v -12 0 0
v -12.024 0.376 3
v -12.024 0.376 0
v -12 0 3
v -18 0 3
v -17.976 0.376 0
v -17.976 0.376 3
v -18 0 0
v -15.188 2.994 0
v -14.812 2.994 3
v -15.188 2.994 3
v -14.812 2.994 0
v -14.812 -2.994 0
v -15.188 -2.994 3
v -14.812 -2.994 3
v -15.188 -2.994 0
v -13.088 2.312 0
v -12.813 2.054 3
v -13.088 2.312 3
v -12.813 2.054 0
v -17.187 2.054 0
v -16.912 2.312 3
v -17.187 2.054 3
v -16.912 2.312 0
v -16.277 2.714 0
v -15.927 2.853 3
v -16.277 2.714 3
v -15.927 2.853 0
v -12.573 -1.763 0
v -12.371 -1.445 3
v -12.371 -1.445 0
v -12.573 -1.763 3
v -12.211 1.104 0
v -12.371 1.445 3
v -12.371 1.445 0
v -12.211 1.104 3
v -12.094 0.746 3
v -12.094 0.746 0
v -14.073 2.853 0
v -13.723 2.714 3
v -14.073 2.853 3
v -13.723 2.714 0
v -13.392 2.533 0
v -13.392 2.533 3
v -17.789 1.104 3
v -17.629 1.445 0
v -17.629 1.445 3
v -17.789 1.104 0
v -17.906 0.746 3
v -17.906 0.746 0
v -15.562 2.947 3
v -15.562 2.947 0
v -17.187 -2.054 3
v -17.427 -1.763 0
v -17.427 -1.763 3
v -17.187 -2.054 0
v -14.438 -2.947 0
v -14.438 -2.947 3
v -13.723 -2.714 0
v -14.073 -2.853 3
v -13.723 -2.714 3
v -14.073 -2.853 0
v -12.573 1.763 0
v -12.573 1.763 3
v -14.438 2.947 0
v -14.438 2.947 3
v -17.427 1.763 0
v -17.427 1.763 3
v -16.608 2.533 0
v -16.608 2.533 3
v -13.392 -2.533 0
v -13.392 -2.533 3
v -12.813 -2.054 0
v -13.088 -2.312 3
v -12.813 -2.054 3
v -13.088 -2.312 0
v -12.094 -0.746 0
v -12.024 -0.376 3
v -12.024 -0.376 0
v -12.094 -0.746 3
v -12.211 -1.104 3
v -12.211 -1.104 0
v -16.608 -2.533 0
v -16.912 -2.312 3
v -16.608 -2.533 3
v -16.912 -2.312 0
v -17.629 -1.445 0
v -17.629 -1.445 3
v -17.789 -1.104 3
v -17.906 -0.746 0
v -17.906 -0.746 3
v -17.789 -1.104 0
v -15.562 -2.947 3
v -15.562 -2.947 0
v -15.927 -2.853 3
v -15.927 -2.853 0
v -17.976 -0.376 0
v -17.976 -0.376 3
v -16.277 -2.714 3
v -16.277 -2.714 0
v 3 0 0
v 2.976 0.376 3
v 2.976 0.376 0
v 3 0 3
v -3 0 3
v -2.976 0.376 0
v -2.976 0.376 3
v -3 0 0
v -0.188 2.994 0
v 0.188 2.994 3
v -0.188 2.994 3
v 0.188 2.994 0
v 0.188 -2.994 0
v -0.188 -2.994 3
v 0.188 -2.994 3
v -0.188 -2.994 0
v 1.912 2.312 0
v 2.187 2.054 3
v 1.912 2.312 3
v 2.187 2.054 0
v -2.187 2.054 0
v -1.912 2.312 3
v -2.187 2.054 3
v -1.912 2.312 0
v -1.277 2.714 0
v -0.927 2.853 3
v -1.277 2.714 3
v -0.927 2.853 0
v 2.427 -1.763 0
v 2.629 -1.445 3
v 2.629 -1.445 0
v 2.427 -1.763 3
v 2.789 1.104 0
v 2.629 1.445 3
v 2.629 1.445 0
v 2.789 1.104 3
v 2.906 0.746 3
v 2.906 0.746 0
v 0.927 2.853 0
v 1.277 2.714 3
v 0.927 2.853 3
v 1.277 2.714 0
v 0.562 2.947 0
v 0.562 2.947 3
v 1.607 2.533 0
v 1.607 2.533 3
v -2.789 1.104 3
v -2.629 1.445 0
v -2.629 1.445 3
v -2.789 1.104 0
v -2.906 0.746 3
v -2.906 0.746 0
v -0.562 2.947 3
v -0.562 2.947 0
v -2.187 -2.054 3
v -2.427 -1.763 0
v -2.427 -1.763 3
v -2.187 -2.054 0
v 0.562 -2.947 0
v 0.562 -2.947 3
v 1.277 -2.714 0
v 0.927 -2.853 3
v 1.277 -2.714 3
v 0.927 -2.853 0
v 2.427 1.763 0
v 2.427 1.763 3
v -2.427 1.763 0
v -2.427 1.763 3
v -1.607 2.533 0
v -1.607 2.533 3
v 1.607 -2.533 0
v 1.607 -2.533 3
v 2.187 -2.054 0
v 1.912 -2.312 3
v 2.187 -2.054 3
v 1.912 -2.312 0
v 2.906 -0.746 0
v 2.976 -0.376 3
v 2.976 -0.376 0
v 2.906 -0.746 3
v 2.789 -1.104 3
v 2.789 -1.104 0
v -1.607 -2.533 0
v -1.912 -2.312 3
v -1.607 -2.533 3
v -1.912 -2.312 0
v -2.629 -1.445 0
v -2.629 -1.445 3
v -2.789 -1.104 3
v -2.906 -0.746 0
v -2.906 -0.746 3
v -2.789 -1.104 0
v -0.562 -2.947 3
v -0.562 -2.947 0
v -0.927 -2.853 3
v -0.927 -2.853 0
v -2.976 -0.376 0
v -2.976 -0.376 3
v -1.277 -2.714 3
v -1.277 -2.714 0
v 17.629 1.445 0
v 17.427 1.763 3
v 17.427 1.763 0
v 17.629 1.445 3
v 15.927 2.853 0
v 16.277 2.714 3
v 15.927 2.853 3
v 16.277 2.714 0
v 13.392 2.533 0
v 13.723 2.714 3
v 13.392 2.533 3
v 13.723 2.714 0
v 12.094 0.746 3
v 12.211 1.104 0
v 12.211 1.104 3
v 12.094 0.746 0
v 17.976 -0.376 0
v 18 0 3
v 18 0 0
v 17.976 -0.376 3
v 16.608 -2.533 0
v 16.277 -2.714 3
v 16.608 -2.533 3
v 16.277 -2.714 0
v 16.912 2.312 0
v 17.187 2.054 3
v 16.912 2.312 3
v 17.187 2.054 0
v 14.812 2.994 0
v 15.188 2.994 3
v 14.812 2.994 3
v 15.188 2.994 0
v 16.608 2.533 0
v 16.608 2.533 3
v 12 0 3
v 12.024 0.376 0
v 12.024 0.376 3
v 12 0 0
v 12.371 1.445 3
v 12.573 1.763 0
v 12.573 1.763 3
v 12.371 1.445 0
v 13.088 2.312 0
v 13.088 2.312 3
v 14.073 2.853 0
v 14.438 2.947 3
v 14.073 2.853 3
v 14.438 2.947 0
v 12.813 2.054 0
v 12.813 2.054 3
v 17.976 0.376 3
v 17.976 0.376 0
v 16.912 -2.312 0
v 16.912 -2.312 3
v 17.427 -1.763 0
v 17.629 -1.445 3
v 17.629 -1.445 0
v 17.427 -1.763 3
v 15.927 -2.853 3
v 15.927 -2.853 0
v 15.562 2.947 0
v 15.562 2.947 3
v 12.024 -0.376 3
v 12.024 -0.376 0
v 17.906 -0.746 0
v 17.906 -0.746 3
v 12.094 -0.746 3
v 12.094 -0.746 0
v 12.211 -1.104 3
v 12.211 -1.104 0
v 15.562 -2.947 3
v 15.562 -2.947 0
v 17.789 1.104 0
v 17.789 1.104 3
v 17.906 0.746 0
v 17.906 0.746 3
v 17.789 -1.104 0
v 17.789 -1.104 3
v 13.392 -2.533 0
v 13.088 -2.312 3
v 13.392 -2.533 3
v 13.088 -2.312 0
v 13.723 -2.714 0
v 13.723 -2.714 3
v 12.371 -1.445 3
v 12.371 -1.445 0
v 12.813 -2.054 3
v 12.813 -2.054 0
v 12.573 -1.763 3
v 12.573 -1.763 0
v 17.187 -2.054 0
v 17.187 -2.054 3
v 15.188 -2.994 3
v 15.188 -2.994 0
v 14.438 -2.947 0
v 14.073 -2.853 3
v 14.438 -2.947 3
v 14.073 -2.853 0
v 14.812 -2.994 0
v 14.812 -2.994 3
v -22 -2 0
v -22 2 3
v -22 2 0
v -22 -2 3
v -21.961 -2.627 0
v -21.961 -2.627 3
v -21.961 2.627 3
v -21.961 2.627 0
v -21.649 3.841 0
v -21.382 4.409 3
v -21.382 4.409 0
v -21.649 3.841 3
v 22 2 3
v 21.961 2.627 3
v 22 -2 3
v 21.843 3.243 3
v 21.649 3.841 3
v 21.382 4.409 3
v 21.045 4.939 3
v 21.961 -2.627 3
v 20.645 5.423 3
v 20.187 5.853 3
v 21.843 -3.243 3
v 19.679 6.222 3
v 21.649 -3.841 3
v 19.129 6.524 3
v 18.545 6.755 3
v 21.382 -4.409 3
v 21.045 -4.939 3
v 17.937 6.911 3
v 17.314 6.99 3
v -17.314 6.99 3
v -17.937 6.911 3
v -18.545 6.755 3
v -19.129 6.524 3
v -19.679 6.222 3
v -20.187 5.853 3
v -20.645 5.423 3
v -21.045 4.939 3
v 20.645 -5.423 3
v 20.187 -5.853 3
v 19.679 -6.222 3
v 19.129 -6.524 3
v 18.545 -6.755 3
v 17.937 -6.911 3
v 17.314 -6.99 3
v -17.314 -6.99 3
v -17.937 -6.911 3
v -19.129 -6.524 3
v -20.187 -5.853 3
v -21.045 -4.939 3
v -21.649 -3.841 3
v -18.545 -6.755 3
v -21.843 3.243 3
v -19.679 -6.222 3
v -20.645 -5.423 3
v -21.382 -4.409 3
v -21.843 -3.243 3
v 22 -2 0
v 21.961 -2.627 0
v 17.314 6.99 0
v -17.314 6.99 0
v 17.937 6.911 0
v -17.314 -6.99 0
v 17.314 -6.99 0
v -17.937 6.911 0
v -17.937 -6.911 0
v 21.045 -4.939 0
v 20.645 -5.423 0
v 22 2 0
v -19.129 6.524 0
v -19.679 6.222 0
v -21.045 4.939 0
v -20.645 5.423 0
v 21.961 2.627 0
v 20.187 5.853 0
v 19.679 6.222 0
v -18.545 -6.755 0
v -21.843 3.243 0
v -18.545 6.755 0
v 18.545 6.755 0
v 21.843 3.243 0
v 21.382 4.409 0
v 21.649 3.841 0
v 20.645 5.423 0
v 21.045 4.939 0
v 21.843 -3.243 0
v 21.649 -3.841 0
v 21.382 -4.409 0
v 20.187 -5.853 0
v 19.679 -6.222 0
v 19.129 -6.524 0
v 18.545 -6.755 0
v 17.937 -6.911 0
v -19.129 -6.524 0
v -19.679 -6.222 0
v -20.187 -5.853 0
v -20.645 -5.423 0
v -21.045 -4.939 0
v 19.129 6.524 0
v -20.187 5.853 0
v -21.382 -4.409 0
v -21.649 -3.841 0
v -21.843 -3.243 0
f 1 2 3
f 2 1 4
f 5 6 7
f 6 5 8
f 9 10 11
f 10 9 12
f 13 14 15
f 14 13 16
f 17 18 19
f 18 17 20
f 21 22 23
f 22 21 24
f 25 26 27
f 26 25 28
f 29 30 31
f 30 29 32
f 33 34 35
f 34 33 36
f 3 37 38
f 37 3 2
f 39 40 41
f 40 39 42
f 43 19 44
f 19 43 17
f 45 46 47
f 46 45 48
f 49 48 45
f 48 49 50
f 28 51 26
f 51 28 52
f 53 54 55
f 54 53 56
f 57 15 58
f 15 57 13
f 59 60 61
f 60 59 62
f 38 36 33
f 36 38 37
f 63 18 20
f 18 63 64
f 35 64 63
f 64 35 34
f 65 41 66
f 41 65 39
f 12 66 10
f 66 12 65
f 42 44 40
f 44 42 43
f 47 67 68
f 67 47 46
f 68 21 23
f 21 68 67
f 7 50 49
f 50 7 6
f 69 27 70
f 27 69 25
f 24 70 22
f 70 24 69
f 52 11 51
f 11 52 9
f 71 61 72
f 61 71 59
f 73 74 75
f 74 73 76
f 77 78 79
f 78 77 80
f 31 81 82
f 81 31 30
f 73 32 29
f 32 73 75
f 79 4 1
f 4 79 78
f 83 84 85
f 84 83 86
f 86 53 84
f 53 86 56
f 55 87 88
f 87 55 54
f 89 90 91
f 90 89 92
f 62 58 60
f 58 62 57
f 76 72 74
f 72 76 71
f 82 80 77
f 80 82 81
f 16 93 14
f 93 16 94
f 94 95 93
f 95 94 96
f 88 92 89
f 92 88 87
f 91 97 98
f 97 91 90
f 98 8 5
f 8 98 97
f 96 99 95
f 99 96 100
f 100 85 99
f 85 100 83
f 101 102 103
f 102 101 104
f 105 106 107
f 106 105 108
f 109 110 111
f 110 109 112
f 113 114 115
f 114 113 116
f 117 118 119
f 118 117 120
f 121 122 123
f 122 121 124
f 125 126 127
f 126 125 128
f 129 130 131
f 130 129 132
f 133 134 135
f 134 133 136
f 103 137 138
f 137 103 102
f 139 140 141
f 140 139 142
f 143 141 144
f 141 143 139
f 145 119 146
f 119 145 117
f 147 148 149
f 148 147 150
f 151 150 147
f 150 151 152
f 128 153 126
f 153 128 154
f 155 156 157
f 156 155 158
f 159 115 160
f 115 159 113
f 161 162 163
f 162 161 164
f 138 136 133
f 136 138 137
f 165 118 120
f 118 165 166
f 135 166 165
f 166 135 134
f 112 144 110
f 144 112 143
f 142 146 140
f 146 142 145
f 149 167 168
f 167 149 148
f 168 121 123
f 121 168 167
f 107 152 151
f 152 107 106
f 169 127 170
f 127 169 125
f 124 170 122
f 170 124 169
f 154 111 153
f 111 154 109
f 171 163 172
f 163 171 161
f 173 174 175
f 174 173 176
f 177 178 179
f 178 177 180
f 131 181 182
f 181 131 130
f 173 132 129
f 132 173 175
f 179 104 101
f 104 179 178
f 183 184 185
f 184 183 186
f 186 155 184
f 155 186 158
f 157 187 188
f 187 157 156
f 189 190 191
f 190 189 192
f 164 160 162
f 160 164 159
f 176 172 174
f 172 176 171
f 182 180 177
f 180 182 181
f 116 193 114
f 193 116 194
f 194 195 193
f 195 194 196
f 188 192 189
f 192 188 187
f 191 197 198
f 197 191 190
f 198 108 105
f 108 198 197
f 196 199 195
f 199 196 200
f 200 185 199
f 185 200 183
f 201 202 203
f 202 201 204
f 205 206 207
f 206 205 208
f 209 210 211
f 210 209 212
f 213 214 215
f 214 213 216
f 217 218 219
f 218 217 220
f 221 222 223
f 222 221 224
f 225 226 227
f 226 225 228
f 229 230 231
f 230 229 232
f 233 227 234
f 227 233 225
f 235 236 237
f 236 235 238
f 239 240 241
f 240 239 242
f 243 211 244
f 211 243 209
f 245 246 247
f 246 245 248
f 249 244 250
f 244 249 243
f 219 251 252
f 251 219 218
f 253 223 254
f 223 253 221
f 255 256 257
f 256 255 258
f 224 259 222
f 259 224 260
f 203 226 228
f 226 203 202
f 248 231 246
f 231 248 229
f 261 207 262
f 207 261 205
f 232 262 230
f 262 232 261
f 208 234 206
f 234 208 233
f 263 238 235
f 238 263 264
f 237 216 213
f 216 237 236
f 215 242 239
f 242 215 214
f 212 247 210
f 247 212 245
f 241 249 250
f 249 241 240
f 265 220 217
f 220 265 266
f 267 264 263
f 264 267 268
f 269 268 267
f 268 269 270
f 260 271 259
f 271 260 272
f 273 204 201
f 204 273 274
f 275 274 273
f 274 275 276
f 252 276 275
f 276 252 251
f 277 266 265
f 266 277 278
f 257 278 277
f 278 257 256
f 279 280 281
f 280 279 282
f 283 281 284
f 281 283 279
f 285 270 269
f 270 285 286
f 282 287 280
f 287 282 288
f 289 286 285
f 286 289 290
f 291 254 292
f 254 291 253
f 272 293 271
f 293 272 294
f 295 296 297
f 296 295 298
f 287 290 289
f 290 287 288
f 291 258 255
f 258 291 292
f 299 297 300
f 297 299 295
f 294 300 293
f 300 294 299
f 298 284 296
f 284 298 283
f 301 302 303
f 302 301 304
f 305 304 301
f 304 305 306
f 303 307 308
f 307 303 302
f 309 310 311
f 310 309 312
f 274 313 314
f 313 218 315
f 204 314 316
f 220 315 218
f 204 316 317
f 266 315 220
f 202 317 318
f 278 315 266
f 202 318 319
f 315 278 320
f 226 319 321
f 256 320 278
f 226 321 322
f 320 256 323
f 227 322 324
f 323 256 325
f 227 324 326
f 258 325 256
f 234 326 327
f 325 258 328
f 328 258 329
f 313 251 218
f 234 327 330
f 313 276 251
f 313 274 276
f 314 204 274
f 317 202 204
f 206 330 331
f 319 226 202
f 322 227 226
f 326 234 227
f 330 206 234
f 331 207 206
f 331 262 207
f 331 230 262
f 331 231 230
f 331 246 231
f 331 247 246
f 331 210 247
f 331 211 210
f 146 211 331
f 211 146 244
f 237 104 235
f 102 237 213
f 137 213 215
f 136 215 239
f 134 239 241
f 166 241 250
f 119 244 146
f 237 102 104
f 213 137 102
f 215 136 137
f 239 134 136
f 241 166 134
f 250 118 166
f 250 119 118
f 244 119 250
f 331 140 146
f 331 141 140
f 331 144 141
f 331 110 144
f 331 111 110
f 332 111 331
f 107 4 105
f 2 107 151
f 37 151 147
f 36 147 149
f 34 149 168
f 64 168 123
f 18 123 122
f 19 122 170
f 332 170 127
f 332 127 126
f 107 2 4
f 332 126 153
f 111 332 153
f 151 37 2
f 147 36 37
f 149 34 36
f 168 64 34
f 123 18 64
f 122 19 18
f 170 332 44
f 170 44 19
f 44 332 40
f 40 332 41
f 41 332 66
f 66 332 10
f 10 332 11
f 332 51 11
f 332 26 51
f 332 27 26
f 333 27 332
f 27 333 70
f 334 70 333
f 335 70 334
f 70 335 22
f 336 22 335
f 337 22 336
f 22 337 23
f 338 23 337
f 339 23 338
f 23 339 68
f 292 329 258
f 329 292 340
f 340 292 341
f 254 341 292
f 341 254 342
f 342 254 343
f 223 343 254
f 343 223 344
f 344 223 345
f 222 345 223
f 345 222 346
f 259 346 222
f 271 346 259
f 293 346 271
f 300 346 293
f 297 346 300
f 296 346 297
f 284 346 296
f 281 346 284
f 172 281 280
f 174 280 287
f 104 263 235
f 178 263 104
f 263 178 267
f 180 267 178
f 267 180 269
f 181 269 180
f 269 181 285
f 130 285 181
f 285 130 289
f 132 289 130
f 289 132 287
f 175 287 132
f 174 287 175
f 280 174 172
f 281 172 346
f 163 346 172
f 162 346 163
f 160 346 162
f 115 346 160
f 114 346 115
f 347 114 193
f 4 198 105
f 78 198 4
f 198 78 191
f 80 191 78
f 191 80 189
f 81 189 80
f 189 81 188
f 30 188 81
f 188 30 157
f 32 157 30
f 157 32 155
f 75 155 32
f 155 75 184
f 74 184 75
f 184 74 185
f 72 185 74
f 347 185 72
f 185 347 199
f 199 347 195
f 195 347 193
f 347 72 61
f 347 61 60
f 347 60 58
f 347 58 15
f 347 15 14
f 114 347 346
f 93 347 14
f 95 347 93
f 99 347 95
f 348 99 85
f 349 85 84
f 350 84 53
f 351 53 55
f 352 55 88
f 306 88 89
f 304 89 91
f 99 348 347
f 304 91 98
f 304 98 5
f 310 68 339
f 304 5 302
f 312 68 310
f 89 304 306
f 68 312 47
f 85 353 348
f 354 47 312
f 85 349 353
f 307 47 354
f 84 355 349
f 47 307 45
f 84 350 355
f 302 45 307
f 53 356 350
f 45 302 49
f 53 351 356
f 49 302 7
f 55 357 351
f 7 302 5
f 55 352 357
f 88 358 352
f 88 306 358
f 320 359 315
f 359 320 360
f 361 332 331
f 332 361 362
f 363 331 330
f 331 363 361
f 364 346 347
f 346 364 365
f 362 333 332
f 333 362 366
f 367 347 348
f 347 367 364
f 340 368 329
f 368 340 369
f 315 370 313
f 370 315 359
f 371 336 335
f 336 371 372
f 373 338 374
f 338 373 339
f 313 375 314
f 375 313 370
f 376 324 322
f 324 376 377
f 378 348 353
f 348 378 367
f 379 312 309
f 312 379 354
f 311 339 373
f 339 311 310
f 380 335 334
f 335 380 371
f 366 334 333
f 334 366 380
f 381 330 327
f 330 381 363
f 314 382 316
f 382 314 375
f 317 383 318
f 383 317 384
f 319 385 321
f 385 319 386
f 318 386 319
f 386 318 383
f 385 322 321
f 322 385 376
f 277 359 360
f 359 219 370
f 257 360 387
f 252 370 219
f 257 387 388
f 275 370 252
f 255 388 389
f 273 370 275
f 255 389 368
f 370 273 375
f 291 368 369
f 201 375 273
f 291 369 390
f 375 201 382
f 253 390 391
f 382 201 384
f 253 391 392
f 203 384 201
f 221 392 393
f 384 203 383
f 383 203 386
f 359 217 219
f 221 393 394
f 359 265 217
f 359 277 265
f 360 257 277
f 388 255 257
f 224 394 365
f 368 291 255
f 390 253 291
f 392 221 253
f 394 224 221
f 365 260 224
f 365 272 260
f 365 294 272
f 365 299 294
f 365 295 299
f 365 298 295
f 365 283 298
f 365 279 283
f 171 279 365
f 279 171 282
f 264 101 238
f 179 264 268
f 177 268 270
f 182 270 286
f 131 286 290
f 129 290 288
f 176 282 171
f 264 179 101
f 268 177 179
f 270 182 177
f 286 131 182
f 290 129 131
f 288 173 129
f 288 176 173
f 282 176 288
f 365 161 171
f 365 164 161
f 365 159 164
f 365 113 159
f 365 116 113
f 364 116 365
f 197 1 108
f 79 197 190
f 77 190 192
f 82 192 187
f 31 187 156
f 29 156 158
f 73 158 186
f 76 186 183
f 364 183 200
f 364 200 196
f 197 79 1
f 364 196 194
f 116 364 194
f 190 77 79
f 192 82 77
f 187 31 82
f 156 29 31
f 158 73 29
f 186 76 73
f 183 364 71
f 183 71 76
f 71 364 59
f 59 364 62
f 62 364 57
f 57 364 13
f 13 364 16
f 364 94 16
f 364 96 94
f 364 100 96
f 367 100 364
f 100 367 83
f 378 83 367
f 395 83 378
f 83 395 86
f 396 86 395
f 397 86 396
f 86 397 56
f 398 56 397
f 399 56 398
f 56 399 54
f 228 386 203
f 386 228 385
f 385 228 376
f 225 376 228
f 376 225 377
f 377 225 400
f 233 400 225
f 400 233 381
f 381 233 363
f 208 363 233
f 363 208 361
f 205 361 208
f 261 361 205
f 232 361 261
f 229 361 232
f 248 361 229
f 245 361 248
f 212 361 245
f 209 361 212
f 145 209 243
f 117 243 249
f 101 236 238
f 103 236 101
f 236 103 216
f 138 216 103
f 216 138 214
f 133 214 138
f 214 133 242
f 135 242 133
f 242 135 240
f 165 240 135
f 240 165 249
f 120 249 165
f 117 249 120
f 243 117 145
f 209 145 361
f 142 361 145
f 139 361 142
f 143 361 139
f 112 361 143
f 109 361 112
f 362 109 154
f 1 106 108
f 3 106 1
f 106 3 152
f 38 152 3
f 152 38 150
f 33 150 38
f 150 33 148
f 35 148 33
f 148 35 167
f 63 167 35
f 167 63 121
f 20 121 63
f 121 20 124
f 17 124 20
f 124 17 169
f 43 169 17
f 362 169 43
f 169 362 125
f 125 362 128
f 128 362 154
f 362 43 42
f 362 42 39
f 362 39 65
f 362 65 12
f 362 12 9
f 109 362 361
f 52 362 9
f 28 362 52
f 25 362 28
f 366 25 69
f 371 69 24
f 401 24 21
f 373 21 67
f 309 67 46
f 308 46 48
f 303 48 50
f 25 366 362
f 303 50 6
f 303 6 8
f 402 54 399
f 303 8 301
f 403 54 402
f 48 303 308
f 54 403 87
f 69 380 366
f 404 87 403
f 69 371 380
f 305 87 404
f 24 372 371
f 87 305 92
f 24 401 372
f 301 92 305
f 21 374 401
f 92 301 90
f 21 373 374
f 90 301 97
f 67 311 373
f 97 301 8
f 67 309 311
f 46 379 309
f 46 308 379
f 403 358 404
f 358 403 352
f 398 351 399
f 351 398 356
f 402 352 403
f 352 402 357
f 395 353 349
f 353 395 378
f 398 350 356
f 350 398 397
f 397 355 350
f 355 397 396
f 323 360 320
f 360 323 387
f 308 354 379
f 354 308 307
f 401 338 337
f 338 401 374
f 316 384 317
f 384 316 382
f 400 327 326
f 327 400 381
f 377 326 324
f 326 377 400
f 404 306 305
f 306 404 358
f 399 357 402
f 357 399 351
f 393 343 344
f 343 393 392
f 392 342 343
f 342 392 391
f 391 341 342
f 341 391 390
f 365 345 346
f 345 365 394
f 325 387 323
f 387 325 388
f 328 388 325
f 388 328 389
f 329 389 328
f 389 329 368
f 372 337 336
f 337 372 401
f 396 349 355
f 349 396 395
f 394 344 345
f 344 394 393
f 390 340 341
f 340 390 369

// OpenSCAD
// Generated by SolidPython 1.1.3 on 2023-03-12 21:51:43
$fn = 50;


difference() {
	union() {
		translate(v = [0, 0, 0]) {
			rotate(a = [0, 0, 0]) {
				hull() {
					translate(v = [-17.0000000000, 2.0000000000, 0]) {
						rotate(a = [0, 0, 0]) {
							translate(v = [0, 0, 0]) {
								rotate(a = [0, 0, 0]) {
									cylinder(h = 3, r = 5);
								}
							}
						}
					}
					translate(v = [17.0000000000, 2.0000000000, 0]) {
						rotate(a = [0, 0, 0]) {
							translate(v = [0, 0, 0]) {
								rotate(a = [0, 0, 0]) {
									cylinder(h = 3, r = 5);
								}
							}
						}
					}
					translate(v = [-17.0000000000, -2.0000000000, 0]) {
						rotate(a = [0, 0, 0]) {
							translate(v = [0, 0, 0]) {
								rotate(a = [0, 0, 0]) {
									cylinder(h = 3, r = 5);
								}
							}
						}
					}
					translate(v = [17.0000000000, -2.0000000000, 0]) {
						rotate(a = [0, 0, 0]) {
							translate(v = [0, 0, 0]) {
								rotate(a = [0, 0, 0]) {
									cylinder(h = 3, r = 5);
								}
							}
						}
					}
				}
			}
		}
	}
	union() {
		translate(v = [-15.0000000000, 0.0000000000, 0]) {
			rotate(a = [0, 0, 0]) {
				translate(v = [0, 0, -50]) {
					rotate(a = [0, 0, 0]) {
						cylinder(h = 100, r = 3.0000000000);
					}
				}
			}
		}
		translate(v = [0.0000000000, 0.0000000000, 0]) {
			rotate(a = [0, 0, 0]) {
				translate(v = [0, 0, -50]) {
					rotate(a = [0, 0, 0]) {
						cylinder(h = 100, r = 3.0000000000);
					}
				}
			}
		}
		translate(v = [15.0000000000, 0.0000000000, 0]) {
			rotate(a = [0, 0, 0]) {
				translate(v = [0, 0, -50]) {
					rotate(a = [0, 0, 0]) {
						cylinder(h = 100, r = 3.0000000000);
					}
				}
			}
		}
	}
}
/***********************************************
*********      SolidPython code:      **********
************************************************
 
from solid import *
import os
import subprocess

import oomB

import opsc_library_gen

mode = "laser"
#mode = "3d_print"

defined_objects = {}

radius_dict = {}
countersunk_dict = {}


def set_mode(m):
    global mode
    mode = m
    radius_dict['M6'] = 6.5/2
    radius_dict['M3'] = 3.3/2
    if mode == "laser":
        radius_dict['M6'] = 6/2
        radius_dict['M3'] = 3/2

    countersunk_dict['M3'] = {}
    countersunk_dict['M3']['little_rad'] = radius_dict['M3']
    countersunk_dict['M3']['big_rad'] = (5.5+0.6)/2
    if mode == "laser":
        countersunk_dict['M3']['big_rad'] = (4.75+0.6)/2
        countersunk_dict['M3']['little_rad'] = (4.75+0.6)/2

    countersunk_dict['M3']['height'] = 1.7


def opsc_make_object(filename, objects, save_type="none",resolution=50, layers = 1, tilediff = 200, mode="laser", overwrite=True):
    if overwrite or not os.path.exists(filename):
        set_mode(mode)
        save_type = save_type.lower()
        os.makedirs(os.path.dirname(filename), exist_ok=True)
        final_object = opsc_get_object(objects, mode = mode)
        # Save the final object to the specified filename    
        scad_render_to_file(final_object, filename, file_header='$fn = %s;' % resolution, include_orig_code=True)
        if mode == "laser":
            filename_laser = filename.replace(".scad","-flat.scad")
            scad_render_to_file(getLaser(final_object, layers=layers, tilediff=tilediff), filename_laser, file_header='$fn = %s;' % resolution, include_orig_code=True)
            if save_type == "all":
                saveToAll(filename_laser)
            elif save_type == "dxf":
                saveToDxf(filename_laser)
        if save_type == "all":
            saveToAll(filename)
        elif save_type == "dxf":
            saveToDxf(filename)


def opsc_get_object(objects, mode = "laser"):
    # Create the solidpython objects only include the positive objects and if they don't have inclusion or their inclusion is either all or mode
    # Initialize an empty list to store the results
    positive_objects = []

    # Iterate over the "objects" list
    for obj in objects:
        # Check if the current object has a "type" key with a value of "positive"
        if obj['type'] == 'positive':
            # Check if the current object has an "inclusion" key and its value matches "mode",
            # or if the current object does not have an "inclusion" key at all
            if not 'inclusion' in obj or obj['inclusion'] == "all" or obj['inclusion'] == mode:
                # Call the "get_opsc_item" function with the current object as an argument
                opsc_item = get_opsc_item(obj)
                # Add the result to the "positive_objects" list
                positive_objects.append(opsc_item)
# Initialize an empty list to store the results
    negative_objects = []

    # Iterate over the "objects" list
    for obj in objects:
        # Check if the current object has a "type" key with a value of "negative"
        if obj['type'] == 'negative':
            # Check if the current object has an "inclusion" key and its value matches "mode",
            # or if the current object does not have an "inclusion" key at all
            if not 'inclusion' in obj or obj['inclusion'] == "all" or obj['inclusion'] == mode:
                # Call the "get_opsc_item" function with the current object as an argument
                opsc_item = get_opsc_item(obj)
                # Add the result to the "negative_objects" list
                negative_objects.append(opsc_item)
    
    #positive_objects = [get_opsc_item(obj) for obj in objects if obj['type'] == 'positive']
    #negative_objects = [get_opsc_item(obj) for obj in objects if obj['type'] == 'negative']
    # Union the positive objects
    positive_object = union()(*positive_objects)
    # Union the negative objects
    negative_object = union()(*negative_objects)
    # Create the final object by subtracting the negative objects from the positive objects
    return difference()(positive_object, negative_object)

def get_opsc_item(params):
    # A dictionary to map radius string values to numerical values
    #radius_dict = {'small': 5, 'medium': 10, 'large': 15}
    # An array of function names for basic shapes
    basic_shapes = ['cube', 'sphere', 'cylinder']
    
    # An array of function names for other shapes
    other_shapes = ['hole', 'slot', 'rounded_rectangle', 'countersunk']
    


    # Convert radius to r if present, and remove radius from the params dictionary
    if 'radius' in params:
        if isinstance(params['radius'], str):
            # Use the radius_dict to map the radius string value to a numerical value
            params['r'] = radius_dict[params['radius']]
        else:
            params['r'] = params['radius']
        del params['radius']
    

    # Check if the object type is a basic shape
    if params['shape'] in basic_shapes:
        # Remove shape and unexpected dictionary values
        allowed_keys = {'size', 'r', 'r1', 'r2', 'd', 'h', 'rw', 'rh', 'dw', 'dh'}
        shape_params = {k: v for k, v in params.items() if k in allowed_keys}

        # Call the corresponding function for the shape parameter, using ** notation to pass the shape_params dictionary as keyword arguments
        return get_opsc_transform(params,globals()[params['shape']](**shape_params))
    
    # If the object type is not a basic shape, check if it's a defined object or one of the other shapes
    elif params['shape'] in other_shapes:
        # Call the corresponding function for the shape parameter, passing the params dictionary as an argument
        p2 = copy.deepcopy(params)
        p2["pos"] = [0,0,0]
        return get_opsc_transform(params,globals()[params['shape']](p2))
    
    # If the object is not a basic shape or a defined object, try to import it from a .scad file
    else:
        obj = defined_objects[params['shape']]
        return get_opsc_transform(params,obj)

def get_opsc_transform(params, solid_obj):
    # Rotate the object based on the 'rot' field in the params dictionary, or the 'rotX', 'rotY', and 'rotZ' fields if 'rot' is not present
    rot = params.get('rot', [])
    if rot:
        rotX, rotY, rotZ = rot
    else:
        rotX = params.get('rotX', 0)
        rotY = params.get('rotY', 0)
        rotZ = params.get('rotZ', 0)
    solid_obj = rotate([rotX, rotY, rotZ])(solid_obj)

    # Translate the object based on the 'pos' field in the params dictionary, or the 'x', 'y', and 'z' fields if 'pos' is not present
    pos = params.get('pos', [])
    if pos:
        x, y, z = pos
    else:
        x = params.get('x', 0)
        y = params.get('y', 0)
        z = params.get('z', 0)
    solid_obj = translate([x, y, z])(solid_obj)
    return solid_obj


import random

def opsc_easy_array(type, shape, repeats, pos_start, shift_arr, **kwargs):
    for i in range(0,3):
        repeats.append(1)
        pos_start.append(0)
        shift_arr.append(0)
    return_objects = []

    for x in range(0,repeats[0]):
        for y in range(0,repeats[1]):
            for z in range(0,repeats[2]):
                return_objects.append(opsc_easy(type, shape, pos=[pos_start[0]+x*shift_arr[0],pos_start[1]+y*shift_arr[1],pos_start[2]+z*shift_arr[2]], **kwargs))
    return return_objects                



def opsc_easy(type, shape, **kwargs):
    obj = {
        'type': type,
        'shape': shape
    }
    for param in ['size', 'r', 'r1', 'r2', 'd', 'h', 'rw', 'rh', 'dw', 'dh', 'pos', 'x', 'y', 'z', 'rot', 'rotX', 'rotY', 'rotZ', "w", "inclusion"]:
        if param in kwargs:
            obj[param] = kwargs[param]
    return obj

def hole(params):
    p2 = copy.deepcopy(params)  
    # Check if the radius is a string and replace it with the corresponding value from the dictionary
    if isinstance(p2['r'], str):
        p2['r'] = radius_dict[p2['r']]
    
    # Set the height to 100 if not specified
    if 'h' not in p2:
        p2['h'] = 100
        p2["pos"] = [0,0,-50]
    p2["center"] = True
    # Create the cylinder object
    p2["shape"] = "cylinder"
    p2["type"] = "positive"

    return get_opsc_item(p2)

import copy

def countersunk(params):
    p2 = copy.deepcopy(params)
    counter_rad = p2['r']
    p2['r'] = radius_dict[p2['r']]
    hp = copy.deepcopy(p2)
    hp["type"] = "positive"
    hp["shape"] = "hole"
    del hp["rot"]
    hol = get_opsc_item(hp)
    
    cp = copy.deepcopy(p2)
    cp["h"] = countersunk_dict[counter_rad]["height"]
    cp["r2"] = countersunk_dict[counter_rad]["little_rad"]
    cp["r1"] = countersunk_dict[counter_rad]["big_rad"]
    del cp["r"]
    del cp["rot"]
    cp["type"] = "positive"
    cp["shape"] = "cylinder"
    cp["pos"] = [0,0,0]

    top = get_opsc_item(cp)
    return union()(hol,top)



def slot(params):  
    p2 = copy.deepcopy(params) 
    if isinstance(p2['r'], str):
        p2['r'] = radius_dict[p2['r']]
    p2["type"] = "positive"
    p2["shape"] = "hole"
    del p2["rot"]
    p2["pos"] = [0,0,0]
    left = copy.deepcopy(p2)
    right = copy.deepcopy(p2)
    left["pos"][0] = p2["w"] / 2 - p2["r"] 
    
    right["pos"][0] = -p2["w"] / 2 + p2["r"] 
    pass
    leftObj = get_opsc_item(left)
    rightObj = get_opsc_item(right)
    return hull()(leftObj, rightObj)

def rounded_rectangle(params):   
    p2 = copy.deepcopy(params) 
    p2["h"] = p2["size"][2]
    p2["pos"] = p2.get("pos", [0, 0, 0]) 
    p2["type"] = "positive"
    p2["shape"] = "hole"
    p2["pos"] = [0,0,0]
    
    if 'rot' in p2:
        del p2["rot"]   
    if 'r' not in p2:
        p2["r"] = 5 
    tl = copy.deepcopy(p2)
    tr = copy.deepcopy(p2)
    bl = copy.deepcopy(p2)
    br = copy.deepcopy(p2)
    tl["pos"][0] = -(p2["size"][0] - p2["r"]*2)/2
    tl["pos"][1] = (p2["size"][1] - p2["r"]*2)/2
    tr["pos"][0] = (p2["size"][0] - p2["r"]*2)/2
    tr["pos"][1] = (p2["size"][1] - p2["r"]*2)/2
    bl["pos"][0] = -(p2["size"][0] - p2["r"]*2)/2
    bl["pos"][1] = -(p2["size"][1] - p2["r"]*2)/2
    br["pos"][0] = (p2["size"][0] - p2["r"]*2)/2
    br["pos"][1] = -(p2["size"][1] - p2["r"]*2)/2
    del tl["size"]
    del tr["size"]
    del bl["size"]
    del br["size"]
    tlo = get_opsc_item(tl)
    tro = get_opsc_item(tr)
    blo = get_opsc_item(bl)
    bro = get_opsc_item(br)    
    return hull()(tlo, tro, blo, bro)



def import_scad_object(filename):
    # Import the .scad file and convert it to a solidpython object
    #filename = "parts"
    obj = import_scad(filename)
    return obj.main()
    


import os
import solid as solidpython

# A dictionary to store the defined objects


def load_scad_objects():
    opsc_library_gen.gen_library(defined_objects)

import random

def test(num_objects):
    objects = []
    for i in range(num_objects):
        # Choose a random shape
        #shape = random.choice(['cube', 'sphere', 'cylinder', 'hole', 'slot', "rounded_rectangle"])
        shape = random.choice(["rounded_rectangle"])

        # Choose a random type
        type = random.choice(['positive', 'negative'])
        
        # Create an empty object dictionary
        obj = {'shape': shape, 'type': type}
        
        # Set shape-specific parameters
        if obj['shape'] in ['cube']:
            obj['size'] =  [random.uniform(5, 15), random.uniform(5, 15), random.uniform(5, 15)]
        if obj['shape'] in ['rounded_rectangle']:
            obj['size'] =  [random.uniform(5, 15), random.uniform(5, 15), random.uniform(5, 15)]
            obj['r'] = random.uniform(0.5, 5)
        elif obj['shape'] == 'sphere':
            obj['r'] = random.uniform(5, 15)
        elif obj['shape'] in ['cylinder', 'hole']:
            obj['r'] = random.uniform(0.5, 5)
            obj['h'] = random.uniform(5, 15)
        elif obj['shape'] == 'slot':
            obj['r'] = random.uniform(0.5, 5)
            obj['h'] = random.uniform(5, 15)
            obj['w'] = random.uniform(5, 15)
        
        # Set a random position and rotation
        obj['pos'] = [random.uniform(-20, 20), random.uniform(-20, 20), random.uniform(-20, 20)]
        obj['rot'] = [random.uniform(-180, 180), random.uniform(-180, 180), random.uniform(-180, 180)]
        
        # Add the object to the list
        objects.append(obj)
    return objects

####### old file saving
def saveToAll(fileIn):
    saveToDxf(fileIn)
    saveToPng(fileIn)
    saveToStl(fileIn)
    saveToSvg(fileIn)

def saveToDxf(fileIn, fileOut="", copy_to_laser=True):
    if fileOut == "":
        fileOut = fileIn.replace(".scad",".dxf")
    saveToFile(fileIn, fileOut)


    
def saveToPng(fileIn, fileOut="",extra="--render"):
    if fileOut == "":
        fileOut = fileIn.replace(".scad",".png")
    saveToFile(fileIn, fileOut)

def saveToStl(fileIn, fileOut=""):
    if fileOut == "":
        fileOut = fileIn.replace(".scad",".stl")
    saveToFile(fileIn, fileOut)
    
def saveToSvg(fileIn, fileOut=""):
    if fileOut == "":
        fileOut = fileIn.replace(".scad",".svg")
    saveToFile(fileIn, fileOut)

def saveToFile(fileIn, fileOut,extra=""):
    #extra = extra + " --colorscheme Tomorrow"

    launchStr = 'openscad -o "' + fileOut + '"' + extra + ' "' + fileIn + '"'
    if ".png" in fileOut:
        launchStr = launchStr + " --render"
    print("            saveToFile launch string: " + launchStr)
    subprocess.run(launchStr)
    x=0

def getLaser(final_object,start=1.5,layers=1,thickness=3,tilediff=200):
        rv= []

        for x in range(layers):
            rv.append(translate([0,x*tilediff,0])(
                    projection()(
                        intersection()(translate([-500,-500,start+x*thickness])(cube(size=[1000,1000,0.1])),
                            final_object
                        )
                    )
            )
            )
            
        return union()(rv)

set_mode("laser")
load_scad_objects() 
 
************************************************/
